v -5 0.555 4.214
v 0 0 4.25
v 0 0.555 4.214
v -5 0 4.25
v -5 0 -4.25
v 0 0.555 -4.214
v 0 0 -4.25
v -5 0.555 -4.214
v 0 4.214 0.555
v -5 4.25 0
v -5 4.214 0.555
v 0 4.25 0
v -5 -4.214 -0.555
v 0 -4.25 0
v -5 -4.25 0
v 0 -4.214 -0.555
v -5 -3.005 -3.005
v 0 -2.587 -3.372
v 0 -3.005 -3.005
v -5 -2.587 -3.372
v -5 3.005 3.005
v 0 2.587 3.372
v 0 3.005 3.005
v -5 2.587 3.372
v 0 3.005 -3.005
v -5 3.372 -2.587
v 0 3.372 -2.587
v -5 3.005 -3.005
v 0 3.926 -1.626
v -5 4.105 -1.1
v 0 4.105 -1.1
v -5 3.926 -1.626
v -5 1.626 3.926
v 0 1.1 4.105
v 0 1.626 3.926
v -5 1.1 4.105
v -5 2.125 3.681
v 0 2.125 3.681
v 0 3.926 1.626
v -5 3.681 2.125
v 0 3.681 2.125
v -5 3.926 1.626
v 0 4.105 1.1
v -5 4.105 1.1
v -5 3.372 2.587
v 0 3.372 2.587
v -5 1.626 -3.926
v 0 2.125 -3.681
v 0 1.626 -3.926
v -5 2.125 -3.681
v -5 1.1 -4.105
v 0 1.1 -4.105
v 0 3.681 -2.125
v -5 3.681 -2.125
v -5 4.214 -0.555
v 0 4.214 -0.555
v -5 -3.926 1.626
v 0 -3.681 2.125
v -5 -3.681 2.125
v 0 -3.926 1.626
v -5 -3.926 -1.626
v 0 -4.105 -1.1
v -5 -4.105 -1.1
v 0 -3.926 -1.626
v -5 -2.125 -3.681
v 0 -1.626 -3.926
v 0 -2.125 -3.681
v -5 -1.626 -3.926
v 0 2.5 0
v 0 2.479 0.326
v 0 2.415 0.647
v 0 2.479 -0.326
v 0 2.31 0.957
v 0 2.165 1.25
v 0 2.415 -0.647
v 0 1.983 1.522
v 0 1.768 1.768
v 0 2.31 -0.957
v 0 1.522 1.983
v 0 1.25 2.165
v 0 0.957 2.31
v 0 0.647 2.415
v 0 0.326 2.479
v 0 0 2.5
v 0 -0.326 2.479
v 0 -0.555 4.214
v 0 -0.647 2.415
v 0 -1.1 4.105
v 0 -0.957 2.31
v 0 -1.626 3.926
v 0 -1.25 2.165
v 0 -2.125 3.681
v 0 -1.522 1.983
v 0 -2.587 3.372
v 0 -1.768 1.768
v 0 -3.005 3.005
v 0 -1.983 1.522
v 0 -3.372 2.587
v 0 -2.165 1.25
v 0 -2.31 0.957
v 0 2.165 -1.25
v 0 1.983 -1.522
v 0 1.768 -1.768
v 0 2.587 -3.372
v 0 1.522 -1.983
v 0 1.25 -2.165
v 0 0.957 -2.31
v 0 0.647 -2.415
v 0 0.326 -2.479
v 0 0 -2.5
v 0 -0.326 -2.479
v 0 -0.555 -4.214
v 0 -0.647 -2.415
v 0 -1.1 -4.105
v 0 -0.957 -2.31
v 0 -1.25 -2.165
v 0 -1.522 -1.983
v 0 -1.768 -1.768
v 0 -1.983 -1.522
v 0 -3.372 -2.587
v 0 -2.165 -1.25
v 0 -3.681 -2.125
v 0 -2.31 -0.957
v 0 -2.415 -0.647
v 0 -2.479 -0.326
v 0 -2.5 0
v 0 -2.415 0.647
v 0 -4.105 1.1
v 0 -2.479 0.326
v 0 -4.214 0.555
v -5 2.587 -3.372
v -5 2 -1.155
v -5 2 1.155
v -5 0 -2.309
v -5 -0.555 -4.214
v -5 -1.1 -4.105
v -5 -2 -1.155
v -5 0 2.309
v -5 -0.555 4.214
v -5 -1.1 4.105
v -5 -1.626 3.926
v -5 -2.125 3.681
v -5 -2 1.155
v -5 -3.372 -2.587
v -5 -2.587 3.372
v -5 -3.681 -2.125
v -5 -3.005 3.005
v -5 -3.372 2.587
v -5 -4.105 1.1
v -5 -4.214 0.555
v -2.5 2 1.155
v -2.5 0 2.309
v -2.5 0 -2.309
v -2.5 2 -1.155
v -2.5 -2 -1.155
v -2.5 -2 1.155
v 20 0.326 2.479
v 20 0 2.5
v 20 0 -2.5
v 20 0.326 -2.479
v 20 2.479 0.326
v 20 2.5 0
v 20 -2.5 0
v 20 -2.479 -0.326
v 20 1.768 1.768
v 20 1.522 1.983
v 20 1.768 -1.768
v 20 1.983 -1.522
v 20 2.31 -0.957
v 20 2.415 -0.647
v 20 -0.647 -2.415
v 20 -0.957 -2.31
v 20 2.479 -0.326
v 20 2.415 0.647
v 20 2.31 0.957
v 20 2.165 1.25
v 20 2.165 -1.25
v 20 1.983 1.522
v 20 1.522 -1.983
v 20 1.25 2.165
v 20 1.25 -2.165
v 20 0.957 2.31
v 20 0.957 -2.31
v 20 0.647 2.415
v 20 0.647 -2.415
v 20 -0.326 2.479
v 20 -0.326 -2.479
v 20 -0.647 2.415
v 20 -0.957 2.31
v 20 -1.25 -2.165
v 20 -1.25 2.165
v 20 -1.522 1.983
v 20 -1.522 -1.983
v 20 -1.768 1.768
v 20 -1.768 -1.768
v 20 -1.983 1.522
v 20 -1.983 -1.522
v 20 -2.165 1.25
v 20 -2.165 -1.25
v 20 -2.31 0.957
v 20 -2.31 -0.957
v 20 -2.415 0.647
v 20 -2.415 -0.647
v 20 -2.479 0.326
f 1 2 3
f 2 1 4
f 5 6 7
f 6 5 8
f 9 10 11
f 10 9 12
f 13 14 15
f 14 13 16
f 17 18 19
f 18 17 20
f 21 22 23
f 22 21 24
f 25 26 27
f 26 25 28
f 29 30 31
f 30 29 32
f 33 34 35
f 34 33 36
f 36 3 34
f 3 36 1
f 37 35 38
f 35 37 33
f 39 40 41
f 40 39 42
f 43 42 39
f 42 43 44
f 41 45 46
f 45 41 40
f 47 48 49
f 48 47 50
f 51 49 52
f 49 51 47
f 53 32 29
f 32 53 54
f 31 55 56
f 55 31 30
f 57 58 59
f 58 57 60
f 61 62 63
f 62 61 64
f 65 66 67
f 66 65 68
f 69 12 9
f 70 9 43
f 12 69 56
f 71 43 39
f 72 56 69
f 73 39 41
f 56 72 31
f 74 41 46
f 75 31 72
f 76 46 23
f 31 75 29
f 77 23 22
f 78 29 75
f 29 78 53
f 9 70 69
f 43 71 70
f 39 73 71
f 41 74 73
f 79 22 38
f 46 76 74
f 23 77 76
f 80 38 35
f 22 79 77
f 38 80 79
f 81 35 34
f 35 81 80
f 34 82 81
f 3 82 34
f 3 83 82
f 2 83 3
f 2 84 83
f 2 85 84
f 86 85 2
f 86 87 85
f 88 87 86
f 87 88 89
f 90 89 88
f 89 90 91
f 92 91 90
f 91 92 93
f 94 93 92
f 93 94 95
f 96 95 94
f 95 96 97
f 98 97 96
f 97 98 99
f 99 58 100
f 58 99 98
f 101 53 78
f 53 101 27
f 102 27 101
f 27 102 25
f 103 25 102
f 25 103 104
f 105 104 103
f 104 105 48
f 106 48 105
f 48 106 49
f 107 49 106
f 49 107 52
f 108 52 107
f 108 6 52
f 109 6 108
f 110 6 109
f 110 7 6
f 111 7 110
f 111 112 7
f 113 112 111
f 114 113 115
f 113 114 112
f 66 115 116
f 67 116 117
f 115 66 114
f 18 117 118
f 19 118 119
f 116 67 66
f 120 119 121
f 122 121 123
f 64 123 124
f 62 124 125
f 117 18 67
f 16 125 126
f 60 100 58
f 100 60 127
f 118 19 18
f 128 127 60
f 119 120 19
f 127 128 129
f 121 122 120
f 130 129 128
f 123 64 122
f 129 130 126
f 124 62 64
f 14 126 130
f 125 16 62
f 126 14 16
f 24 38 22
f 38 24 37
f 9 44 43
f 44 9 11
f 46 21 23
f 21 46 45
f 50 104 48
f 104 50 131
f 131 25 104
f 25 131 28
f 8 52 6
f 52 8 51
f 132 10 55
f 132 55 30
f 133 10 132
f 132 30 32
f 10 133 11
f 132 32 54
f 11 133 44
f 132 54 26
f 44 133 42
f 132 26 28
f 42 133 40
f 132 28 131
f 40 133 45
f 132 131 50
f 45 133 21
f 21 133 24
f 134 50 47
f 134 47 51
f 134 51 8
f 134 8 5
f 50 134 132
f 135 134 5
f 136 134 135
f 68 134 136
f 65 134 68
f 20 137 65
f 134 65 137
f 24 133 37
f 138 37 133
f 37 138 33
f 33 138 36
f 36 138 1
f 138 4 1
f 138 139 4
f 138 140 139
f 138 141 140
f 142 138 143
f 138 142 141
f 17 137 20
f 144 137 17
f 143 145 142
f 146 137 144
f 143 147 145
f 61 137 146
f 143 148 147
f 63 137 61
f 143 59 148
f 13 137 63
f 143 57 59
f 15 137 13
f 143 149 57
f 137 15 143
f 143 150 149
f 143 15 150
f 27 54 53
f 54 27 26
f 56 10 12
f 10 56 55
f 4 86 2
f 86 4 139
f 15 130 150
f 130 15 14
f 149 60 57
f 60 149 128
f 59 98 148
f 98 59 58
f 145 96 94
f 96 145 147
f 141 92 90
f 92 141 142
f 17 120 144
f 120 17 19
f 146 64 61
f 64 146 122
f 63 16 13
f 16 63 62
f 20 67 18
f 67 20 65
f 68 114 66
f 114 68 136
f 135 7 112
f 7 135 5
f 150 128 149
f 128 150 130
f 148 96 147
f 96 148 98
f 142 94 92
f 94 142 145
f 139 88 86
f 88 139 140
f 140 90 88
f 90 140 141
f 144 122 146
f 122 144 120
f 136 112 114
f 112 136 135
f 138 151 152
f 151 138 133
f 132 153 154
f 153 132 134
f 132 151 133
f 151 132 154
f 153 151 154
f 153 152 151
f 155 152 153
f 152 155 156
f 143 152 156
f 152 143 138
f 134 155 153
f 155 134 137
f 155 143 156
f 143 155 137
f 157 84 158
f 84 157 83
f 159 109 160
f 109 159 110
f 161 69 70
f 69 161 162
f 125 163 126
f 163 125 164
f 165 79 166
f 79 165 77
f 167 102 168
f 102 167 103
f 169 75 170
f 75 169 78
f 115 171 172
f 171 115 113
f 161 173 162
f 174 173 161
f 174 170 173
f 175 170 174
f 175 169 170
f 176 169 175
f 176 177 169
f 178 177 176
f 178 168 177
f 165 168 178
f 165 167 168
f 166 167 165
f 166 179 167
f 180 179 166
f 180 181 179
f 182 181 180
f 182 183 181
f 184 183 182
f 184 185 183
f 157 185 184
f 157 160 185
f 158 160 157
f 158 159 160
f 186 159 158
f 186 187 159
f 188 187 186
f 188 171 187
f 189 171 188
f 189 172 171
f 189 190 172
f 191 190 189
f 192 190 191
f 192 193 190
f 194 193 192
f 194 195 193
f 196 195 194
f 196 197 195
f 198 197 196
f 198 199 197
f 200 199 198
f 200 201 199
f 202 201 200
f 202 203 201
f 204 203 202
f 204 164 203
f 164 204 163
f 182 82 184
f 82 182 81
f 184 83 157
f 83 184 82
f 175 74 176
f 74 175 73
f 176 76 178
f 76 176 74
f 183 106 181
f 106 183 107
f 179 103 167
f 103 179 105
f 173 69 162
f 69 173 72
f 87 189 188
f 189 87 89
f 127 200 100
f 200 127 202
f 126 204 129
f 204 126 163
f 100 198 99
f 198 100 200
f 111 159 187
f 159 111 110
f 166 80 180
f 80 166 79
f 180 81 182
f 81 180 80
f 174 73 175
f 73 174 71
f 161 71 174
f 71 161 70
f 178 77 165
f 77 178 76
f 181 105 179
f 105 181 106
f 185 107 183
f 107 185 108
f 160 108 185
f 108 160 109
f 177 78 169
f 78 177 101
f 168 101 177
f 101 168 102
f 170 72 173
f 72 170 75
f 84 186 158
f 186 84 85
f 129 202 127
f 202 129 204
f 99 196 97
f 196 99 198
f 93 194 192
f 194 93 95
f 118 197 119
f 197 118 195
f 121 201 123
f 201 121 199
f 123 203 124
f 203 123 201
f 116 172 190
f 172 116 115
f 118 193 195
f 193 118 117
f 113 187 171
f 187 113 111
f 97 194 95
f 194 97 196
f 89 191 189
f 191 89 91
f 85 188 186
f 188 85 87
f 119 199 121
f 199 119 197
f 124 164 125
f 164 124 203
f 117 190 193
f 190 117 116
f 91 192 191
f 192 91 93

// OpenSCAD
// file: ../../../lib/nutsnbolts/data-access.scad
// Norm Nuts and Bolts - a OpenSCAD library
// Copyright (C) 2012  Johannes Kneer

// This program is free software: you can redistribute it and/or modify
// it under the terms of the GNU General Public License as published by
// the Free Software Foundation, either version 3 of the License, or
// (at your option) any later version.

// This program is distributed in the hope that it will be useful,
// but WITHOUT ANY WARRANTY; without even the implied warranty of
// MERCHANTABILITY or FITNESS FOR A PARTICULAR PURPOSE.  See the
// GNU General Public License for more details.

// You should have received a copy of the GNU General Public License
// along with this program.  If not, see <http://www.gnu.org/licenses/>.


// DATABASE ACCESS FUNCTIONS AND CONSTANTS



// == CONSTANTS ==

// screw table access keys
_NB_S_DESC            = 0;
_NB_S_FAMKEY			    = 1;
_NB_S_LENGTH          = 2;
_NB_S_NOTHREAD_LENGTH = 3;

_NB_F_DESC			      = 0;
_NB_F_OUTER_DIA       = 1;
_NB_F_INNER_DIA       = 2;
_NB_F_LEAD            = 3;
_NB_F_KEY             = 4;
_NB_F_KEY_DEPTH       = 5;
_NB_F_HEAD_HEIGHT     = 6;
_NB_F_HEAD_DIA        = 7;
_NB_F_NUT_KEY         = 8;
_NB_F_NUT_HEIGHT      = 9;
_NB_F_PITCH_FINE      = 10;
_NB_F_PITCH_MEDIUM    = 11;
_NB_F_PITCH_COARSE    = 12;


// == FUNCTIONS ==

// _get_screw("descriptor")   with descriptor = M8x25
//   find the line for a general object in the data matrix

function _get_screw(n) = data_screw[search([n], data_screw)[0]];
function _get_screw_fam(n) = data_screw_fam[search([_get_screw(n)[_NB_S_FAMKEY]], data_screw_fam)[0]];

function _get_fam(n) = data_screw_fam[search([n], data_screw_fam)[0]];


// _get_XXXXX("descriptor") functions
// find a single property in the database

function _get_desc(n)        = _get_screw(n)[_NB_S_DESC];
function _get_famkey(n)         = _get_screw(n)[_NB_S_FAMKEY];
function _get_length(n)      = _get_screw(n)[_NB_S_LENGTH];
function _get_nt_length(n)   = _get_screw(n)[_NB_S_NOTHREAD_LENGTH];

function _get_outer_dia(n)   = _get_screw_fam(n)[_NB_F_OUTER_DIA];
function _get_inner_dia(n)   = _get_screw_fam(n)[_NB_F_INNER_DIA];
function _get_lead(n)        = _get_screw_fam(n)[_NB_F_LEAD];
function _get_head_height(n) = _get_screw_fam(n)[_NB_F_HEAD_HEIGHT];
function _get_head_dia(n)    = _get_screw_fam(n)[_NB_F_HEAD_DIA];
function _get_nut_key(n)     = _get_screw_fam(n)[_NB_F_NUT_KEY];
function _get_nut_height(n)  = _get_screw_fam(n)[_NB_F_NUT_HEIGHT];
function _get_fine_pitch(n)  = _get_screw_fam(n)[_NB_F_PITCH_FINE];
function _get_medium_pitch(n)  = _get_screw_fam(n)[_NB_F_PITCH_MEDIUM];
function _get_coarse_pitch(n)  = _get_screw_fam(n)[_NB_F_PITCH_COARSE];
// main file
/**********************************************************************************************************************
 **
 ** parts/vitamins/screw_M5x20.scad
 **
 ** This file renders a screw of the dimensions specified by the file name.
 **
 **********************************************************************************************************************/

include <../../../lib/nutsnbolts/cyl_head_bolt.scad>;

$fn = 48;
rotate([0, -90, 0])
	screw("M5x20"); 
